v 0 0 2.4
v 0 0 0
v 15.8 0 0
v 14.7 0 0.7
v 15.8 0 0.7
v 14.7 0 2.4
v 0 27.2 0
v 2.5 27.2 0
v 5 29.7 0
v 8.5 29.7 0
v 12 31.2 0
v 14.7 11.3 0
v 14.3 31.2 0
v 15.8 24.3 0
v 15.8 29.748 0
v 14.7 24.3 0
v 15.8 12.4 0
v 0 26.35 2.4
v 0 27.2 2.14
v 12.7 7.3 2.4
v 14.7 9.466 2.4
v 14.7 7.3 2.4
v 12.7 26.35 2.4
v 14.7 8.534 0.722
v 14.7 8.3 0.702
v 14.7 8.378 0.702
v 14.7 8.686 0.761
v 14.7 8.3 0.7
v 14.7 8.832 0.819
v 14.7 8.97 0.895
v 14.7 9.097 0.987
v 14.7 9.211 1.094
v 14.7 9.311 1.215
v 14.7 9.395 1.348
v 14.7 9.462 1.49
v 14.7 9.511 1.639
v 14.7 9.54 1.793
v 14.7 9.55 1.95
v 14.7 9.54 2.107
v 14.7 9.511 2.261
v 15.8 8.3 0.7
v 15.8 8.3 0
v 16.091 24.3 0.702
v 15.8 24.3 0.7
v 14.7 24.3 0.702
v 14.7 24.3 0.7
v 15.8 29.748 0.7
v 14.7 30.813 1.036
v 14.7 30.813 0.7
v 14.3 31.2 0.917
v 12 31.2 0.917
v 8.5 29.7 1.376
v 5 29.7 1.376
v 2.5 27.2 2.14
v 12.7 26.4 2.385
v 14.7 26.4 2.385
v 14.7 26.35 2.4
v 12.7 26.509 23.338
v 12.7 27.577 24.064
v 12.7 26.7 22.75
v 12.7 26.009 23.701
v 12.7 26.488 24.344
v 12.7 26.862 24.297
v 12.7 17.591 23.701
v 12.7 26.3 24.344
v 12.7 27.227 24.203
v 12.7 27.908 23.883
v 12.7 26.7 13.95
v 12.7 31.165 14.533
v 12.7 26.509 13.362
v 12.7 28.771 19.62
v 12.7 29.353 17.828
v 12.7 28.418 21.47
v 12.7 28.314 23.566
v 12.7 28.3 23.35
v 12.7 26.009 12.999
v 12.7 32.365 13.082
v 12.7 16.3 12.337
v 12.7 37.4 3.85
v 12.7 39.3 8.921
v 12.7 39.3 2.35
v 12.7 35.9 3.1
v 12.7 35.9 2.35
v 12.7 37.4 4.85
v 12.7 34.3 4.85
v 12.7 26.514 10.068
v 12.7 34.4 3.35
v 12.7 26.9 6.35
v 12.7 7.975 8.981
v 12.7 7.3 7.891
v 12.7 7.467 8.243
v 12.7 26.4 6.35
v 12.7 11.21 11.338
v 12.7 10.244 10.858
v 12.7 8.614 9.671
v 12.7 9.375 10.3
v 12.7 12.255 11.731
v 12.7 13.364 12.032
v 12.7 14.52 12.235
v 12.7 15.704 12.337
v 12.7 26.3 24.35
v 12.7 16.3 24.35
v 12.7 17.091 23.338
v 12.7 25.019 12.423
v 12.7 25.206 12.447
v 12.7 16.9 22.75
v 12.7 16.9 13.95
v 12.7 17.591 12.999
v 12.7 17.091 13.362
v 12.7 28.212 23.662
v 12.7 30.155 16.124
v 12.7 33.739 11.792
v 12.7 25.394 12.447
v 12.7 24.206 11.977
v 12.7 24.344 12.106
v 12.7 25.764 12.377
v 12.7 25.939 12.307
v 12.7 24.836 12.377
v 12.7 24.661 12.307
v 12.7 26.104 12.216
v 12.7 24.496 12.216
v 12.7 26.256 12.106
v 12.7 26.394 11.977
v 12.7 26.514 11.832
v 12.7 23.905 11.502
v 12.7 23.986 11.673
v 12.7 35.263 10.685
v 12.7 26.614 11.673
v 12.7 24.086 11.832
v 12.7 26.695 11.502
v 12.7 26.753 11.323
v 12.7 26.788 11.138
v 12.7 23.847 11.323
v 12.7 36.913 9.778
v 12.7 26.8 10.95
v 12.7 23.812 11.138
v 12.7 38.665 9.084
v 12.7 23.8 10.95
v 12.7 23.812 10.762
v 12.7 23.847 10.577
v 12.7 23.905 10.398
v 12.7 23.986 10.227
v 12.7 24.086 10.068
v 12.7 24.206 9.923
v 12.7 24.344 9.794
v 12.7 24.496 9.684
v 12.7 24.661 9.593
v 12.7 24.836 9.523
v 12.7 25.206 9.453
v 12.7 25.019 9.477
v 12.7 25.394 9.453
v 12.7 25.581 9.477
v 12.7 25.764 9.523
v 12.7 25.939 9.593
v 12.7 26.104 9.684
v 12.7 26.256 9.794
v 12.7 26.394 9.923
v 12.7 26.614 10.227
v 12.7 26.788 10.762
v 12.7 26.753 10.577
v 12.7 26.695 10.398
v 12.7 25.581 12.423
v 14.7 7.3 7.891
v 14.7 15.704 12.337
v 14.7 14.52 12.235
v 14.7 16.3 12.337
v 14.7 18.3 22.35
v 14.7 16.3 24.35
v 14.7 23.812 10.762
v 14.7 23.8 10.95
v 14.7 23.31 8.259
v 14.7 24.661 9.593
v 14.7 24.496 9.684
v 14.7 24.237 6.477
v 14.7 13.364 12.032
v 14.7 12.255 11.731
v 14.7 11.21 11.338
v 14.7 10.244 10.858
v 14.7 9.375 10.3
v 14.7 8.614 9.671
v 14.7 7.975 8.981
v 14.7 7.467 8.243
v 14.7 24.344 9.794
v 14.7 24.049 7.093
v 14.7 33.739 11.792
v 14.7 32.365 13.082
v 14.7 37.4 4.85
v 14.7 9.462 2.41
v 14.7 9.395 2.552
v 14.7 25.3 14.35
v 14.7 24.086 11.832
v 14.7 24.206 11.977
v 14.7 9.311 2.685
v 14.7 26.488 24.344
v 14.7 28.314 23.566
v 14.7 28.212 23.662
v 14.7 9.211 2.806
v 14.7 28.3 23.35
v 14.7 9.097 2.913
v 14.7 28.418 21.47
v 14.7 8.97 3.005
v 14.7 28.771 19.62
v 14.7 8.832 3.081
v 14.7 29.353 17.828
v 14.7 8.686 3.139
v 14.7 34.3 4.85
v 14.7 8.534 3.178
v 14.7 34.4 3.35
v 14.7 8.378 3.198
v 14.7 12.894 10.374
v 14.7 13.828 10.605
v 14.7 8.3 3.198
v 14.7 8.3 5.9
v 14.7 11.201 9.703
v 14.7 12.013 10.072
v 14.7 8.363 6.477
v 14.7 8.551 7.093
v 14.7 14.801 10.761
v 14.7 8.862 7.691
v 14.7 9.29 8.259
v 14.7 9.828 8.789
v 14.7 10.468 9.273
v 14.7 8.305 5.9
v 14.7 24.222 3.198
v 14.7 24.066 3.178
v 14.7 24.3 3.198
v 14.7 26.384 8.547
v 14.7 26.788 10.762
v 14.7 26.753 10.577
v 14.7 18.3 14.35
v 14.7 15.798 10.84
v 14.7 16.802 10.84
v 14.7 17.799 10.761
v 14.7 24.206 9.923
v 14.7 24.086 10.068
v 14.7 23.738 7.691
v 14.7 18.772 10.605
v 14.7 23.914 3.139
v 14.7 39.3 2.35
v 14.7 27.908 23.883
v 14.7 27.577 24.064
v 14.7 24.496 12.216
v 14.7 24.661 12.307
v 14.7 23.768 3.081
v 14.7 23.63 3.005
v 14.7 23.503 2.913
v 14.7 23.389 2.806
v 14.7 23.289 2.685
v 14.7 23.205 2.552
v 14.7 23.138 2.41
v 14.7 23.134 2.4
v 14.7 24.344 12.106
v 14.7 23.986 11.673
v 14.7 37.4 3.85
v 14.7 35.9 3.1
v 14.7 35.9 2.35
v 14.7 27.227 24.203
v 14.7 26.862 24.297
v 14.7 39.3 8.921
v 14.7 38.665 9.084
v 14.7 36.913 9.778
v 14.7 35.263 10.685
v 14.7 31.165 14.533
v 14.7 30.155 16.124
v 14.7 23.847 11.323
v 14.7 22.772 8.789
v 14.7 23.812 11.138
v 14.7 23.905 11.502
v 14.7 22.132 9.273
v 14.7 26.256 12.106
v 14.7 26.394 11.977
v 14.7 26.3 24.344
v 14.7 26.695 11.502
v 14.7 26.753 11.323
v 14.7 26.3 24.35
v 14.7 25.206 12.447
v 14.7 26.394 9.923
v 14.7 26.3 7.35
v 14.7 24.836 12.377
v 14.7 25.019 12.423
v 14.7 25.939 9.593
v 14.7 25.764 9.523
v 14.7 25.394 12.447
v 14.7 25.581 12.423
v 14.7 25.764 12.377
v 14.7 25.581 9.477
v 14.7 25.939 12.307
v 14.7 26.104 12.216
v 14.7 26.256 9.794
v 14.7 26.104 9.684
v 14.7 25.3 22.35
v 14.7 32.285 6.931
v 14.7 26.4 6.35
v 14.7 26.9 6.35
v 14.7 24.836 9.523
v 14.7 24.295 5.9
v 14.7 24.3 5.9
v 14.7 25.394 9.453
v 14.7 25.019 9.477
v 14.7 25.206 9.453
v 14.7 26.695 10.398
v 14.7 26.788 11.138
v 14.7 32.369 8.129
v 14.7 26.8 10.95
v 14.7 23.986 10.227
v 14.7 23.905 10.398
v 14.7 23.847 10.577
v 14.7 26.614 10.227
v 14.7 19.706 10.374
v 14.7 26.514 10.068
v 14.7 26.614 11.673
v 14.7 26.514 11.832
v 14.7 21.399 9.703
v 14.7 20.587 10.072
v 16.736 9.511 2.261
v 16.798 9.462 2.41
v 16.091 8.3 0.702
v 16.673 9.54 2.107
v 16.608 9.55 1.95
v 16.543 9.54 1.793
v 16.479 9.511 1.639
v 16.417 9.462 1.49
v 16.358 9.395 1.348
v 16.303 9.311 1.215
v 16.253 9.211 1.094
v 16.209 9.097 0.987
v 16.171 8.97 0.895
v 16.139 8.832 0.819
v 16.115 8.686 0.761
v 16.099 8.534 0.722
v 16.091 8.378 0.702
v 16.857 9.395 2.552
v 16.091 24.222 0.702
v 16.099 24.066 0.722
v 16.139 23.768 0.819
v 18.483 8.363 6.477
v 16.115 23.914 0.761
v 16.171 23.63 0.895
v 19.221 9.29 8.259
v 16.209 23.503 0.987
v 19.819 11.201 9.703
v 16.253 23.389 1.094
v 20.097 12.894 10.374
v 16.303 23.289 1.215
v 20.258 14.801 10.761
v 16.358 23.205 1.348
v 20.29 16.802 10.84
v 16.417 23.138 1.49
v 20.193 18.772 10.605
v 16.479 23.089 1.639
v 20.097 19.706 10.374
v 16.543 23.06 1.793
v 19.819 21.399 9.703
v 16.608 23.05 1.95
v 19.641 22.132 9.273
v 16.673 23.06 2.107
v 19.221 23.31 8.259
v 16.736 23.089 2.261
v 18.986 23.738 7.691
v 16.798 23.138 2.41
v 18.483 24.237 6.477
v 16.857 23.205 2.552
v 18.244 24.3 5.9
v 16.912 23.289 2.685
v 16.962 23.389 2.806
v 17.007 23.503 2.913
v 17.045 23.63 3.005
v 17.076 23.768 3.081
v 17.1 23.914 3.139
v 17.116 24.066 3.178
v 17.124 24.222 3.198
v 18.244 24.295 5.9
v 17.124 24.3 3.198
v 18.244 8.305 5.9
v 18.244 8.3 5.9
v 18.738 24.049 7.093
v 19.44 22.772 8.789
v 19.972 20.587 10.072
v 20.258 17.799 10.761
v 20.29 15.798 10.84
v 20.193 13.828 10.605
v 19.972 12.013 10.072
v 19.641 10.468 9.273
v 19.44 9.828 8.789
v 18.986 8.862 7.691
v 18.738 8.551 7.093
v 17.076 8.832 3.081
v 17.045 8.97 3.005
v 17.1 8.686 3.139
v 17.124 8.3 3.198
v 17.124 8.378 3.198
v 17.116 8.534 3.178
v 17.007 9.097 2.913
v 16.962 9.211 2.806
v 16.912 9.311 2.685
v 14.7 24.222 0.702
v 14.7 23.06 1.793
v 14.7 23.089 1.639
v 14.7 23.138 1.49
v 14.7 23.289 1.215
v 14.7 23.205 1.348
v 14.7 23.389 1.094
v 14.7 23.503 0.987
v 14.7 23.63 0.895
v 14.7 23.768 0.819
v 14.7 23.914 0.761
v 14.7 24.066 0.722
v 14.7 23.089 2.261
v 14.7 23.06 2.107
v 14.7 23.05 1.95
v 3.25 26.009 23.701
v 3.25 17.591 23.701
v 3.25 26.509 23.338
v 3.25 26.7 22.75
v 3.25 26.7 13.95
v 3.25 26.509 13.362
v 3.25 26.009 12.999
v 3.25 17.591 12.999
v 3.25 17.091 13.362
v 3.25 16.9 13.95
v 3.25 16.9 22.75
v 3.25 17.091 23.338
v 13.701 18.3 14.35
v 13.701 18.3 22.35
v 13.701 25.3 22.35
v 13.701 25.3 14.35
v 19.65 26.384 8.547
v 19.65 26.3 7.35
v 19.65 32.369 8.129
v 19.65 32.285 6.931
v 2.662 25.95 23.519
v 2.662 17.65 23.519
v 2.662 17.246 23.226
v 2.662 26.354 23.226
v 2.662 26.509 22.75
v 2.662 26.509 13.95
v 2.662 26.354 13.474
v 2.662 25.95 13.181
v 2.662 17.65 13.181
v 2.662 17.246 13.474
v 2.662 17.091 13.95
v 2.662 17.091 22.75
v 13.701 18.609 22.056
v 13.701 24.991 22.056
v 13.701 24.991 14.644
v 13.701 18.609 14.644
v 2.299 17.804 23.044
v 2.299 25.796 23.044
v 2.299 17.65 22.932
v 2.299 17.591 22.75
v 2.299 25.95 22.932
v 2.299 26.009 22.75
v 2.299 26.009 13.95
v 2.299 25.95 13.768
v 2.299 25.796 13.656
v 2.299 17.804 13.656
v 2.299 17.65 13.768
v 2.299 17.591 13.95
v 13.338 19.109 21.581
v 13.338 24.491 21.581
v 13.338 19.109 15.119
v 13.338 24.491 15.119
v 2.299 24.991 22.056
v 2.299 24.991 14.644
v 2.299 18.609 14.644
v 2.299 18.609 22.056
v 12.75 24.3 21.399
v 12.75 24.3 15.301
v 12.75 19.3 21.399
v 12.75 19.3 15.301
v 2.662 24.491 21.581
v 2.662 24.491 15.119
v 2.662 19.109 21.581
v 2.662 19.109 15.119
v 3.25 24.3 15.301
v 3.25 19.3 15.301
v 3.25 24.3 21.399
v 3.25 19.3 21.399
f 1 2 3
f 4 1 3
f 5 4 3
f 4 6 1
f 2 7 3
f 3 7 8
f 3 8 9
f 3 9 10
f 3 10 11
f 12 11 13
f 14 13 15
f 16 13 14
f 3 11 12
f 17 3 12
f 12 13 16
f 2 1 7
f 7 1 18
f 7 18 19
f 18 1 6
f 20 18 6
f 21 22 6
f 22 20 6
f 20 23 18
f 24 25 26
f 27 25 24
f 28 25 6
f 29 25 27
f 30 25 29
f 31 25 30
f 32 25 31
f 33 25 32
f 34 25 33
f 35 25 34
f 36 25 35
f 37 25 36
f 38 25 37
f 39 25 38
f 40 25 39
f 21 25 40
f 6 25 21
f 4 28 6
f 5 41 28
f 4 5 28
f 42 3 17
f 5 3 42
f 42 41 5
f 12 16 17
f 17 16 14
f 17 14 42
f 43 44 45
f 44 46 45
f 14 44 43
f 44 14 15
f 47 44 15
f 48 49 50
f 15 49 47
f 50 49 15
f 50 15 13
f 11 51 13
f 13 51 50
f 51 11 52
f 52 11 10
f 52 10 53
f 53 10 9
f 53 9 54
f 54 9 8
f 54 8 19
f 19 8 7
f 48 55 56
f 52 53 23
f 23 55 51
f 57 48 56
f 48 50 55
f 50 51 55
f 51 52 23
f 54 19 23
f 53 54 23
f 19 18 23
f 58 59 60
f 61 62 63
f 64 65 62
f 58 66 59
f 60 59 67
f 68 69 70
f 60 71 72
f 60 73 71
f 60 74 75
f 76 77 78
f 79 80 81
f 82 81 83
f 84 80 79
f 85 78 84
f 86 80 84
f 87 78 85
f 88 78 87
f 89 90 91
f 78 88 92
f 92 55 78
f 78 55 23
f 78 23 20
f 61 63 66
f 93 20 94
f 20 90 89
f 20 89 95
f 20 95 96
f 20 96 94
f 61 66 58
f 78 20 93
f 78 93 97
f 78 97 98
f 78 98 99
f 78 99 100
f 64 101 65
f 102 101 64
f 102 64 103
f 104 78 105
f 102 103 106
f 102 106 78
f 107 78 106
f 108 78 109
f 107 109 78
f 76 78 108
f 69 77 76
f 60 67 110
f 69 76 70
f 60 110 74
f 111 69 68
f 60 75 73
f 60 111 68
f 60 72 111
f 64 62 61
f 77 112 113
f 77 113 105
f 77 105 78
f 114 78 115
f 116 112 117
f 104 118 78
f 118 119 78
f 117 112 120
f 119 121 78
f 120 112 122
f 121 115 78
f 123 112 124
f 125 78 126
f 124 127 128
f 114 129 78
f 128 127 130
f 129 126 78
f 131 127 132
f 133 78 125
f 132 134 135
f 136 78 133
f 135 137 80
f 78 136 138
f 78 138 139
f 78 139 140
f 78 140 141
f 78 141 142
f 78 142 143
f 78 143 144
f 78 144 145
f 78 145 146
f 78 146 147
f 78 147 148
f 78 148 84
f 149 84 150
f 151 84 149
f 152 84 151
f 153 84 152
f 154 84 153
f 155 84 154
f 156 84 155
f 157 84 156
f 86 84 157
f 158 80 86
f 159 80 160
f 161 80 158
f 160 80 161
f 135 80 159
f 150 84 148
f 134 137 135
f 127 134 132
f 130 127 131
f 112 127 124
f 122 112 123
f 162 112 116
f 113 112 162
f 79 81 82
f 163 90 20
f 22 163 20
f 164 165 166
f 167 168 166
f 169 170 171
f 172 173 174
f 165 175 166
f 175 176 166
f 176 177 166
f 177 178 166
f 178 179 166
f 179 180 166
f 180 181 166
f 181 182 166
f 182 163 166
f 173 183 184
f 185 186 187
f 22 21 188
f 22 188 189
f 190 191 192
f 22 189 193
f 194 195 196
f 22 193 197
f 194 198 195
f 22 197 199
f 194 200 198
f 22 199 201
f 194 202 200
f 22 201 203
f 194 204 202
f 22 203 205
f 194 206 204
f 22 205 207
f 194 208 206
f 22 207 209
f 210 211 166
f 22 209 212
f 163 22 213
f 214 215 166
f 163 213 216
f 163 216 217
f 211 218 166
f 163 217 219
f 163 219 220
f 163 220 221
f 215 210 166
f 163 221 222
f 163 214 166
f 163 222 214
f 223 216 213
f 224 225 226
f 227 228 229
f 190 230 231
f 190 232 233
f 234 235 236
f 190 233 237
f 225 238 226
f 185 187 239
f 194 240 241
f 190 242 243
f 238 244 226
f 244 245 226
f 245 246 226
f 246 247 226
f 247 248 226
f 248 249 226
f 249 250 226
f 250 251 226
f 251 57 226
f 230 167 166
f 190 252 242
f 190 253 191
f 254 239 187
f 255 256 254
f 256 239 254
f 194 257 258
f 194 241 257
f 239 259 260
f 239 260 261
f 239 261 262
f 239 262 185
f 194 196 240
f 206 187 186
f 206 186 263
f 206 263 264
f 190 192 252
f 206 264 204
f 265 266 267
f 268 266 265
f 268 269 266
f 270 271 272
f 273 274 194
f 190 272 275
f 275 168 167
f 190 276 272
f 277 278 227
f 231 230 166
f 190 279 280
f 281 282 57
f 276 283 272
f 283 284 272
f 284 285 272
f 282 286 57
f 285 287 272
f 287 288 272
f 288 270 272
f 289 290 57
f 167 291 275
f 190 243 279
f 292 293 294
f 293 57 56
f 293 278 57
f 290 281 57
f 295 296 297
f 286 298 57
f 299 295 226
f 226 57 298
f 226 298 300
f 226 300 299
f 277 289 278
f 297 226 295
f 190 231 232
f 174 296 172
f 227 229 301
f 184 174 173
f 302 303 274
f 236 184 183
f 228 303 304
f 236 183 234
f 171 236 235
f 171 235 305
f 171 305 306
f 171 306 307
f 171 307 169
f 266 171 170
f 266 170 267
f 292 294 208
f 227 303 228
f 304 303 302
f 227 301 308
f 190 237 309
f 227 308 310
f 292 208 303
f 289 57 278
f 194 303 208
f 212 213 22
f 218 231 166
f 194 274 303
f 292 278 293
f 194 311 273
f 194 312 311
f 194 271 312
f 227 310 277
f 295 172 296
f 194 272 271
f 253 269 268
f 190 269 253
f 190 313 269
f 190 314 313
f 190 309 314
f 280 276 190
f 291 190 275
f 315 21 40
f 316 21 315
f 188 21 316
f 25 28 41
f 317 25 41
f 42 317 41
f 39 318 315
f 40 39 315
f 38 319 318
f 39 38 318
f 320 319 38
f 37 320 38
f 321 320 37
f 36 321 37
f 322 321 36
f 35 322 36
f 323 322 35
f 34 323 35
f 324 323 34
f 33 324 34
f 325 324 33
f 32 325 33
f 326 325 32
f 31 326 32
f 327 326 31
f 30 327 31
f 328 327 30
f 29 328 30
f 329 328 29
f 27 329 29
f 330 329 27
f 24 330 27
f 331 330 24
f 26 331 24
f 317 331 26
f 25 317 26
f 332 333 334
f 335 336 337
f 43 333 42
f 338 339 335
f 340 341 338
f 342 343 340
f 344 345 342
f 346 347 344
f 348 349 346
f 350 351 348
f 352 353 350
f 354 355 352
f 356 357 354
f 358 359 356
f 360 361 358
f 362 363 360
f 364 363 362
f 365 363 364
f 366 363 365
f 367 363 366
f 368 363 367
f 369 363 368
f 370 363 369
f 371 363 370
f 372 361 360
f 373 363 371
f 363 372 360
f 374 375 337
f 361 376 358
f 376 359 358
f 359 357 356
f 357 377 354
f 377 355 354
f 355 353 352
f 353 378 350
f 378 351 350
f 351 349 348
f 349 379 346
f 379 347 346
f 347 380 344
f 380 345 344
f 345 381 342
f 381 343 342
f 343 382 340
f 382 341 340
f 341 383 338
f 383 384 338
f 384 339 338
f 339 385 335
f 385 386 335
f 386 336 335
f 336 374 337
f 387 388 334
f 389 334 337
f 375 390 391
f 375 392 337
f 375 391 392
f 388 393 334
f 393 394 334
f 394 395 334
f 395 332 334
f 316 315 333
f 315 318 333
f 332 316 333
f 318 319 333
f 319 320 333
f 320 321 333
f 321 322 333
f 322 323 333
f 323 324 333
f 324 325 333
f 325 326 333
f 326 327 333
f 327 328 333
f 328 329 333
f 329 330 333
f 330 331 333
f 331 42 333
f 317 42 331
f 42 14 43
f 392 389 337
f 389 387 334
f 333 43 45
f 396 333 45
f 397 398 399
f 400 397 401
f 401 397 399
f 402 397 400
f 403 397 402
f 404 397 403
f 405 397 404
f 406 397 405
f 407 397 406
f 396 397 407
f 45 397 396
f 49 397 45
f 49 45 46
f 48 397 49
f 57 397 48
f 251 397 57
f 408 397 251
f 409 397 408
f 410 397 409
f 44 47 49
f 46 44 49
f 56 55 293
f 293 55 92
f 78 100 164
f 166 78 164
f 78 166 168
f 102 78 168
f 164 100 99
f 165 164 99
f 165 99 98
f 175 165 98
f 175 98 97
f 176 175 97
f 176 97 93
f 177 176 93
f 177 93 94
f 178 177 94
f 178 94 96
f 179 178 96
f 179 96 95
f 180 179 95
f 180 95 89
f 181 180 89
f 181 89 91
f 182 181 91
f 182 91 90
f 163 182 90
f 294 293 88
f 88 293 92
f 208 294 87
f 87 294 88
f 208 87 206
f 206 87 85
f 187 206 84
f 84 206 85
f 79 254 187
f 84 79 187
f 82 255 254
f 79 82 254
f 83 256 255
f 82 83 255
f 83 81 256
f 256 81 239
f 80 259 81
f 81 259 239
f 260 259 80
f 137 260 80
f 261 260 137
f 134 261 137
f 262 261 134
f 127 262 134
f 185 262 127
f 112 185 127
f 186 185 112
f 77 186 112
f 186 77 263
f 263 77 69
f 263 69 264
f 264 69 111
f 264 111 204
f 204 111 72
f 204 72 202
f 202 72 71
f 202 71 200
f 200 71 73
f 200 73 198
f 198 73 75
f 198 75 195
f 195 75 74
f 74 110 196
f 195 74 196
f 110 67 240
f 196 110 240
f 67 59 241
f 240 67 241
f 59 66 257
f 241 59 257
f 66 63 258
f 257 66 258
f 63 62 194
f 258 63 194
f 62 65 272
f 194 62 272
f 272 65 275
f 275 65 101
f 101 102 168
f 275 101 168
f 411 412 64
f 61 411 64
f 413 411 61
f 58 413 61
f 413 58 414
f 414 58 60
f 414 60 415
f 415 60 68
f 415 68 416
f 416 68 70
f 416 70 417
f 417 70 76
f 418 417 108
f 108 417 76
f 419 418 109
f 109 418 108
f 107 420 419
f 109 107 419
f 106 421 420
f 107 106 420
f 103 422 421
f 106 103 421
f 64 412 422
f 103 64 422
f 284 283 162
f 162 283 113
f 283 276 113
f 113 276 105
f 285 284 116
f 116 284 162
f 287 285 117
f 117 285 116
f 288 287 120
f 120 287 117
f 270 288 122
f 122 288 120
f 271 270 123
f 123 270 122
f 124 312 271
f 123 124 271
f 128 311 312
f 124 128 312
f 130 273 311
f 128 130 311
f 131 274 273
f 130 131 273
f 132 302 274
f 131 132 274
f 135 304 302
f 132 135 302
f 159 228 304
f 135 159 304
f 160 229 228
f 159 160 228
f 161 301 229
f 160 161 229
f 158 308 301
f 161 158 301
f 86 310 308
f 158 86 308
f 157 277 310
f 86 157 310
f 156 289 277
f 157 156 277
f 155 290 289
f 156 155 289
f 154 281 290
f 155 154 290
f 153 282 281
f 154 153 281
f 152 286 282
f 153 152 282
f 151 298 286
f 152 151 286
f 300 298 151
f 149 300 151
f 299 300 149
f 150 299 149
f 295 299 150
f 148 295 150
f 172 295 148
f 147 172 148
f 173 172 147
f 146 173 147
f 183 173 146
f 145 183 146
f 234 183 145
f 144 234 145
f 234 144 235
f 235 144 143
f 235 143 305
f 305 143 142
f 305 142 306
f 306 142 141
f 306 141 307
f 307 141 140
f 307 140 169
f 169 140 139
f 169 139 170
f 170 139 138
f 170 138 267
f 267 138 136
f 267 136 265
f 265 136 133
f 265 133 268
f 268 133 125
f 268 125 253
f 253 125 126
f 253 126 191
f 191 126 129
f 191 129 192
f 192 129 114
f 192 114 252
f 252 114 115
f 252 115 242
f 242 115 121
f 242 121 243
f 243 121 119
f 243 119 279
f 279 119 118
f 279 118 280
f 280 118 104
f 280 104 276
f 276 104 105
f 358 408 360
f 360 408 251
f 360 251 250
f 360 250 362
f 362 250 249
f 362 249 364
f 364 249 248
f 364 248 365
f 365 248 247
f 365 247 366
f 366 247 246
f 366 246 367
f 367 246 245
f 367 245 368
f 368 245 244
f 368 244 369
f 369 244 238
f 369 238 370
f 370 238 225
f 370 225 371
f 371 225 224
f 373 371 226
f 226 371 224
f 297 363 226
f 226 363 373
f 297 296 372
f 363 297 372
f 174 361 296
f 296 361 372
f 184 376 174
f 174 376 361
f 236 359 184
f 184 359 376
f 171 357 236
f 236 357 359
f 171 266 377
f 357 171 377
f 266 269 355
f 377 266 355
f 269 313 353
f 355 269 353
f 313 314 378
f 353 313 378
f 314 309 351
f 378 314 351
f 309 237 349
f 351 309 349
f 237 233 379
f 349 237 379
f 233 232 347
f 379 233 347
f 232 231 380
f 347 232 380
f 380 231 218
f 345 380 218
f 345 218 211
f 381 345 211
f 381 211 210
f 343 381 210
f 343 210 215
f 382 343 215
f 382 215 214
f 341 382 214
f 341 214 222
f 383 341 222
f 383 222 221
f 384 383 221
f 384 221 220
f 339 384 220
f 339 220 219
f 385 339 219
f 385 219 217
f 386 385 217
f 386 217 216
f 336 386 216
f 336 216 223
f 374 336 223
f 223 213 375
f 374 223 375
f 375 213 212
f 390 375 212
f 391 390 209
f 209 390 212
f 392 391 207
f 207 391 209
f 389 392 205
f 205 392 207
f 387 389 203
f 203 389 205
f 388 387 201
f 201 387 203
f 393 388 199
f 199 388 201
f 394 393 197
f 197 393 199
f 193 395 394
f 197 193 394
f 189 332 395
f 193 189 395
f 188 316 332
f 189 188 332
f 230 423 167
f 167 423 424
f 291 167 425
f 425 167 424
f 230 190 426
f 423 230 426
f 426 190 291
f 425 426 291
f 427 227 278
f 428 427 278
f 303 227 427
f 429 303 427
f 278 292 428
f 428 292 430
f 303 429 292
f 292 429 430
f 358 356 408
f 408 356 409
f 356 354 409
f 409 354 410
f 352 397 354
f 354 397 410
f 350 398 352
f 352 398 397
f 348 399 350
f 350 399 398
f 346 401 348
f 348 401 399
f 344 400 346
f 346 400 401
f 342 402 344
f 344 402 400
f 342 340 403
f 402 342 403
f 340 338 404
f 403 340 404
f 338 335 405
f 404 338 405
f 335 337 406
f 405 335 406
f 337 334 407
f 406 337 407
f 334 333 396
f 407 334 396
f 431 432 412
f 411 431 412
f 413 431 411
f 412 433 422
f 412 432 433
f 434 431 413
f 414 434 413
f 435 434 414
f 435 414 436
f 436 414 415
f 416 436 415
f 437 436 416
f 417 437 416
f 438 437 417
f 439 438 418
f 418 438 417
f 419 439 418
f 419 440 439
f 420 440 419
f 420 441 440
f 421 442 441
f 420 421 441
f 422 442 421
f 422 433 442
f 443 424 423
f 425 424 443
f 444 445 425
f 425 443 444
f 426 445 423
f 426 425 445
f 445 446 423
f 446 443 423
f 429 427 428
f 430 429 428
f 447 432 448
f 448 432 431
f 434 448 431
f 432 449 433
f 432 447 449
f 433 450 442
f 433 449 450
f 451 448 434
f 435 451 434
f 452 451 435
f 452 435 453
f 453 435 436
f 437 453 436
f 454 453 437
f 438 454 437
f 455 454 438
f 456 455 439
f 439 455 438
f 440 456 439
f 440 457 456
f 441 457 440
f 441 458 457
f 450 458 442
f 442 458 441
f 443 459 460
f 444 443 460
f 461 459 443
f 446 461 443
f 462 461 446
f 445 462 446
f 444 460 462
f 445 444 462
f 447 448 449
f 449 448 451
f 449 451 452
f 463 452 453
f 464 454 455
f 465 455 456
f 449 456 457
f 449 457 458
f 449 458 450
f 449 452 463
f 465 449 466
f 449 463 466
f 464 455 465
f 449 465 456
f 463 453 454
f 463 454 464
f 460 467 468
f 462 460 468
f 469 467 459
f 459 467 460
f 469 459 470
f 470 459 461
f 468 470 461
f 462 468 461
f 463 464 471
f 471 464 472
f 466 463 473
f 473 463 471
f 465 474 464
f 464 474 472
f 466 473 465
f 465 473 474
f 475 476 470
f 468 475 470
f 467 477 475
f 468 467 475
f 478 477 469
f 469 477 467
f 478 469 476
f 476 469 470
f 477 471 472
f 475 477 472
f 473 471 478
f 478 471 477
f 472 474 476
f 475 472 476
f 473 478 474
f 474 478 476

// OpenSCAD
// Replacement part for a velux curtain thingy



pad = 0.05;
$fn = 50;

////////////////////////////////////////////////////////////
// CONSTANTS

// BASE PART CONSTANTS
// The largest part. Goes into the track of the curtain
base_width = 15.8;
base_height = 31.2;
base_thickness = 2.4;
// The base "wedges off" in the top, with an angle
base_wedge_offset = 26.0; // This is not actual measurement.
base_wedge_angle = 17; // very approximate

// PLATE CONSTANTS
plate_width = 32;
plate_height = 22;
plate_thickness = 2;
// Offset from bottom edge of base to start of plate.
plate_base_offset = 7.3;

// The screw hole is important. Offsets from center
plate_screw_hole_x_offset = 18;
plate_screw_hole_y_offset = 8.6;
plate_screw_hole_diameter = 3.0; // r = d/2 ... 

// And, the wire gude. Offsets from center.
plate_wire_guide_x_offset = 14.5;
plate_wire_guide_y_offset = 16;
plate_wire_guide_inner_width = 5;
plate_wire_guide_inner_height = 6;
plate_wire_guide_outer_depth = 9.5;
plate_wire_guide_roundness = 1; // Dunno yet.
plate_wire_guide_thickness = 2.4;

// And, the curtain holder
plate_curtain_holder_x_offset = 19.1;

// A small guide thing, that goes in, close the curtain holder
plate_guide_width = 6.0;
plate_guide_height = 1.2;
plate_guide_depth = 5;
plate_guide_x_offset = 19;
plate_guide_y_offset = 5.0;
plate_guide_angle = 4;

// Tounge - visible oval thingy
plate_tounge_width = 16;
plate_tounge_height = 5; // Half height
plate_tounge_x_offset = 9;
plate_tounge_y_top = 8.5;
plate_tounge_limit_angle = 22.5;
plate_tounge_depth = 10; // Not precise, just more than the limit stuff.
// Two cutouts
plate_tounge_cutout_radius = 1.25;
plate_tounge_cutout_x_offset_center = 8;
plate_tounge_cutout_y_offset_bottom = 2;

// shape is the final shape
shape_tounge_diff = 1.5;


// FITTER CONSTANTS
// ALSO USED BY BASE. REALLY; THIS IS CONFUSING
// The very small edge in the side
fitter_edge_thickness = 0.7;
// The offset from the left edge to the start of the fitter
fitter_base_offset = 14.7;


////////////////////////////////////////////////////////////////////////////////
// BASE PART
// It has a very weird visible edge here...

module base_weird_edge() {
    linear_extrude( height = base_thickness * 2 ) {
    polygon(points=[
            [-pad,0],
            [2.5,0],
            [5,2.5],
            [8.5,2.5],
            [12,4],
            [base_width-1.5,4],
            [base_width+pad,2.5],
            [base_width+pad,10],
            [-pad,10]
            ]);
    }
}

// The base part, without weird cuttings.
module base_base() {
    // Base with wedge
    // The rotation is sort of weird
    translate([base_width / 2.0, base_height / 2.0, 0] ) {
        rotate([0,0,180]) {
            translate([-base_width / 2.0, -base_height / 2.0, 0] ) {
                difference() {
                    // This is the largest part, called the base
                    cube([base_width, base_height, base_thickness]);
                    
                    // Cut with a wedge
                    // the 3/-3 is imprecise, but ...
                    translate([-base_width / 2.0, -3, 0] ) {
                        rotate([base_wedge_angle,0,0]) {
                            translate([0,3,0]) {
                                cube([base_width*2, base_height, base_thickness]);
                            }
                        }
                        
                    }
                }
            }
        }
    }
}

// The actual base.
module base() {

    // Cut off some stuff
    difference() {
        // The main base
        difference() {
            base_base();
            translate([0,base_height-4,-pad]) {
                base_weird_edge();
            }
        }
        // The edge is actually a wedge too, but really...
        translate( [ base_width + fitter_base_offset, 0, base_thickness + fitter_edge_thickness ] ) {
            cube([base_width * 2, base_height * 2, base_thickness * 2], center = true );
        }
    }
}

////////////////////////////////////////////////////////////
// The plate is the vertical plate from the base
// Most is cut from this (shape), using a coordinate system with 0,0 in lover left corner.
// Later, some additional stuff is added

/////////////////////////////////////////////////
// Some weird cutting that fits the curtain.
module plate_curtain_cutting() {
    linear_extrude( height = plate_thickness * 2 ) {
        polygon(points=[
                [0,-pad],
                [0,4],
                [0.5,4],
                [8,1],
                [7.9,2.5],
                [11,2.5],
                [11,1.5],
                [9.5,0.75],
                [9.5,-pad]
            ]);
    }
}
// plate_curtain_cutting();

////////////////////////////////////////
// The "tounge" is the round sloped thing that goes into the visible user area
// This is cut against the base, later
module plate_tounge() {
    difference() {
        union() {
            scale( [plate_tounge_width, plate_tounge_height*2,1] ) {
                cylinder(r = 0.5, h = plate_tounge_depth );
            }
            // Cube thinge
            // Something fishy with pad here.
            translate([ 0, - plate_tounge_y_top / 2.0 + base_thickness / 2.0 + 3*pad, plate_tounge_depth / 2 + pad] ) {
                cube( [plate_tounge_width, plate_tounge_y_top - plate_tounge_height + base_thickness, plate_tounge_depth], center = true );
            }
        }
        // Two very minor cuts
        union() {
            translate([-plate_tounge_cutout_x_offset_center, - plate_tounge_y_top / 2.0 + base_thickness / 2.0 + 3*pad - plate_tounge_cutout_y_offset_bottom/2.0, 0] ) {
                cylinder(r = 1.25, h = plate_tounge_depth*2);
            }
            translate([plate_tounge_cutout_x_offset_center, - plate_tounge_y_top / 2.0 + base_thickness / 2.0 + 3*pad - plate_tounge_cutout_y_offset_bottom/2.0, 0] ) {
                cylinder(r = 1.25, h = plate_tounge_depth*2);
            }
        }

    }
}

// The actual plate
module plate() {
    
    //////////////////////////////////////////////////
    // The wire guide
    // This is made as a cube with a rounded hole in.
    minkowski($fn = 10) {
        difference() {
            translate([ plate_wire_guide_x_offset, plate_wire_guide_y_offset, plate_wire_guide_outer_depth / 2.0 - plate_wire_guide_outer_depth + pad]) {
                
                cube([plate_wire_guide_inner_width + 2 * plate_wire_guide_thickness - plate_wire_guide_roundness * 2.0,
                        plate_wire_guide_inner_height + 2 * plate_wire_guide_thickness - plate_wire_guide_roundness * 2.0,
                        plate_wire_guide_outer_depth], center = true);
            }
            // Cut a hole through it
            // Note, this is done again below.
            translate([ plate_wire_guide_x_offset, plate_wire_guide_y_offset, plate_wire_guide_outer_depth / 2.0 - plate_wire_guide_outer_depth + pad]) {
                
                cube([plate_wire_guide_inner_width + plate_wire_guide_roundness * 2,
                        plate_wire_guide_inner_height + plate_wire_guide_roundness * 2,
                        plate_wire_guide_outer_depth * 2 ], center = true);
                
            }
            
        }
        sphere( r = plate_wire_guide_roundness );
    }

    ////////////////////////////////////////
    // The little guide
    // TODO: May want to round corners here.
    translate([plate_guide_x_offset, plate_guide_y_offset, plate_thickness - pad]) {
        rotate([0,0,-plate_guide_angle]) {
            cube([plate_guide_width, plate_guide_height, plate_guide_depth]);
        }
    }

    // The tounge
    translate([plate_tounge_x_offset, plate_tounge_y_top - plate_tounge_height, plate_thickness - pad]) {

        plate_tounge();
    }

    
    //////////////////////////////////////////////////
    // The plate, with various cuttings in it.
    difference() {
        // The actual plate
        cube([plate_width, plate_height, plate_thickness]);

        ////////////////////////////////////////
        // Screw hole
        translate( [plate_screw_hole_x_offset, plate_screw_hole_y_offset, plate_thickness / 2] ) {
            cylinder(r = plate_screw_hole_diameter / 2.0, h = plate_thickness * 2, center = true );
        }

        // Add the hole for the guide for the wire - wireguide
        // Note, this is also done above, sort of
        translate([ plate_wire_guide_x_offset, plate_wire_guide_y_offset, plate_wire_guide_outer_depth / 2.0 - plate_wire_guide_outer_depth + pad]) {
            
            cube([plate_wire_guide_inner_width + plate_wire_guide_roundness * 2,
                    plate_wire_guide_inner_height + plate_wire_guide_roundness * 2,
                    plate_wire_guide_outer_depth * 2 ], center = true);
            
        }

        ////////////////////////////////////////
        // The cutting for the actual cloth of the curtain
        translate( [plate_curtain_holder_x_offset,0,-plate_thickness / 2.0] ) {
            plate_curtain_cutting();
        }

        // And, some cuts for the shape of the plate
        // Cut above curtain guide
        translate([plate_width + 4, 6 + 15,0]) {
            cylinder( r = 15, h = 6, center = true );
        }
        // Cut some corner above the curtain guide cut.
        translate([19,19,-5]) {
            difference() {
                cube( [10, 10, 10] );
                cylinder( r = 3, h = 20 );
            }
        }
        // And around the tounge
        translate([plate_tounge_x_offset,plate_tounge_y_top - plate_tounge_height ,0]) {
            difference() {
                translate([-50,0,-5]) cube([50,50,50]);
                scale( [plate_tounge_width + 2 * shape_tounge_diff,
                        ( plate_tounge_height + shape_tounge_diff ) * 2 , 1] ) {
                    translate([0,0,-6]) cylinder(r = 0.5, h = 52 );
                }
            }
        }
    }
}

module positioned_plate() {
    translate([-plate_thickness,plate_base_offset,base_thickness-pad]) {
        rotate([0,90,0]) {
            rotate([0,0,90]) {
                plate();
            }
        }
    }
}


// Just to translate the base the correct place.
module base_and_plate() {
    translate([fitter_base_offset,0,0]) {
        translate([-fitter_base_offset,0,0]) {
            base();
        }
        positioned_plate();
    }
}

////////////////////////////////////////////////////////////
// The fitter is the round part that goes into the something.
// Yes, I know, I have a really hard time describing it.
module fitter() {
}





//  plate();

difference() {
    base_and_plate();


    // This is a special cut, which really is part of the tounge, but was too
    // hard to handle in that coordinate system
    // Note, 10 and 5 are hardcoded here.
    // And, go way oversize, to allow for the other stuff to move arounc
    translate([base_width + 5/cos(plate_tounge_limit_angle),0,0]) {
        rotate([0,90+plate_tounge_limit_angle,0]) {
            cube([plate_tounge_width * 10, plate_tounge_height * 10, 10 ], center = true );
        }
    }


    // Some final 
    
}

// base_weird_edge();
